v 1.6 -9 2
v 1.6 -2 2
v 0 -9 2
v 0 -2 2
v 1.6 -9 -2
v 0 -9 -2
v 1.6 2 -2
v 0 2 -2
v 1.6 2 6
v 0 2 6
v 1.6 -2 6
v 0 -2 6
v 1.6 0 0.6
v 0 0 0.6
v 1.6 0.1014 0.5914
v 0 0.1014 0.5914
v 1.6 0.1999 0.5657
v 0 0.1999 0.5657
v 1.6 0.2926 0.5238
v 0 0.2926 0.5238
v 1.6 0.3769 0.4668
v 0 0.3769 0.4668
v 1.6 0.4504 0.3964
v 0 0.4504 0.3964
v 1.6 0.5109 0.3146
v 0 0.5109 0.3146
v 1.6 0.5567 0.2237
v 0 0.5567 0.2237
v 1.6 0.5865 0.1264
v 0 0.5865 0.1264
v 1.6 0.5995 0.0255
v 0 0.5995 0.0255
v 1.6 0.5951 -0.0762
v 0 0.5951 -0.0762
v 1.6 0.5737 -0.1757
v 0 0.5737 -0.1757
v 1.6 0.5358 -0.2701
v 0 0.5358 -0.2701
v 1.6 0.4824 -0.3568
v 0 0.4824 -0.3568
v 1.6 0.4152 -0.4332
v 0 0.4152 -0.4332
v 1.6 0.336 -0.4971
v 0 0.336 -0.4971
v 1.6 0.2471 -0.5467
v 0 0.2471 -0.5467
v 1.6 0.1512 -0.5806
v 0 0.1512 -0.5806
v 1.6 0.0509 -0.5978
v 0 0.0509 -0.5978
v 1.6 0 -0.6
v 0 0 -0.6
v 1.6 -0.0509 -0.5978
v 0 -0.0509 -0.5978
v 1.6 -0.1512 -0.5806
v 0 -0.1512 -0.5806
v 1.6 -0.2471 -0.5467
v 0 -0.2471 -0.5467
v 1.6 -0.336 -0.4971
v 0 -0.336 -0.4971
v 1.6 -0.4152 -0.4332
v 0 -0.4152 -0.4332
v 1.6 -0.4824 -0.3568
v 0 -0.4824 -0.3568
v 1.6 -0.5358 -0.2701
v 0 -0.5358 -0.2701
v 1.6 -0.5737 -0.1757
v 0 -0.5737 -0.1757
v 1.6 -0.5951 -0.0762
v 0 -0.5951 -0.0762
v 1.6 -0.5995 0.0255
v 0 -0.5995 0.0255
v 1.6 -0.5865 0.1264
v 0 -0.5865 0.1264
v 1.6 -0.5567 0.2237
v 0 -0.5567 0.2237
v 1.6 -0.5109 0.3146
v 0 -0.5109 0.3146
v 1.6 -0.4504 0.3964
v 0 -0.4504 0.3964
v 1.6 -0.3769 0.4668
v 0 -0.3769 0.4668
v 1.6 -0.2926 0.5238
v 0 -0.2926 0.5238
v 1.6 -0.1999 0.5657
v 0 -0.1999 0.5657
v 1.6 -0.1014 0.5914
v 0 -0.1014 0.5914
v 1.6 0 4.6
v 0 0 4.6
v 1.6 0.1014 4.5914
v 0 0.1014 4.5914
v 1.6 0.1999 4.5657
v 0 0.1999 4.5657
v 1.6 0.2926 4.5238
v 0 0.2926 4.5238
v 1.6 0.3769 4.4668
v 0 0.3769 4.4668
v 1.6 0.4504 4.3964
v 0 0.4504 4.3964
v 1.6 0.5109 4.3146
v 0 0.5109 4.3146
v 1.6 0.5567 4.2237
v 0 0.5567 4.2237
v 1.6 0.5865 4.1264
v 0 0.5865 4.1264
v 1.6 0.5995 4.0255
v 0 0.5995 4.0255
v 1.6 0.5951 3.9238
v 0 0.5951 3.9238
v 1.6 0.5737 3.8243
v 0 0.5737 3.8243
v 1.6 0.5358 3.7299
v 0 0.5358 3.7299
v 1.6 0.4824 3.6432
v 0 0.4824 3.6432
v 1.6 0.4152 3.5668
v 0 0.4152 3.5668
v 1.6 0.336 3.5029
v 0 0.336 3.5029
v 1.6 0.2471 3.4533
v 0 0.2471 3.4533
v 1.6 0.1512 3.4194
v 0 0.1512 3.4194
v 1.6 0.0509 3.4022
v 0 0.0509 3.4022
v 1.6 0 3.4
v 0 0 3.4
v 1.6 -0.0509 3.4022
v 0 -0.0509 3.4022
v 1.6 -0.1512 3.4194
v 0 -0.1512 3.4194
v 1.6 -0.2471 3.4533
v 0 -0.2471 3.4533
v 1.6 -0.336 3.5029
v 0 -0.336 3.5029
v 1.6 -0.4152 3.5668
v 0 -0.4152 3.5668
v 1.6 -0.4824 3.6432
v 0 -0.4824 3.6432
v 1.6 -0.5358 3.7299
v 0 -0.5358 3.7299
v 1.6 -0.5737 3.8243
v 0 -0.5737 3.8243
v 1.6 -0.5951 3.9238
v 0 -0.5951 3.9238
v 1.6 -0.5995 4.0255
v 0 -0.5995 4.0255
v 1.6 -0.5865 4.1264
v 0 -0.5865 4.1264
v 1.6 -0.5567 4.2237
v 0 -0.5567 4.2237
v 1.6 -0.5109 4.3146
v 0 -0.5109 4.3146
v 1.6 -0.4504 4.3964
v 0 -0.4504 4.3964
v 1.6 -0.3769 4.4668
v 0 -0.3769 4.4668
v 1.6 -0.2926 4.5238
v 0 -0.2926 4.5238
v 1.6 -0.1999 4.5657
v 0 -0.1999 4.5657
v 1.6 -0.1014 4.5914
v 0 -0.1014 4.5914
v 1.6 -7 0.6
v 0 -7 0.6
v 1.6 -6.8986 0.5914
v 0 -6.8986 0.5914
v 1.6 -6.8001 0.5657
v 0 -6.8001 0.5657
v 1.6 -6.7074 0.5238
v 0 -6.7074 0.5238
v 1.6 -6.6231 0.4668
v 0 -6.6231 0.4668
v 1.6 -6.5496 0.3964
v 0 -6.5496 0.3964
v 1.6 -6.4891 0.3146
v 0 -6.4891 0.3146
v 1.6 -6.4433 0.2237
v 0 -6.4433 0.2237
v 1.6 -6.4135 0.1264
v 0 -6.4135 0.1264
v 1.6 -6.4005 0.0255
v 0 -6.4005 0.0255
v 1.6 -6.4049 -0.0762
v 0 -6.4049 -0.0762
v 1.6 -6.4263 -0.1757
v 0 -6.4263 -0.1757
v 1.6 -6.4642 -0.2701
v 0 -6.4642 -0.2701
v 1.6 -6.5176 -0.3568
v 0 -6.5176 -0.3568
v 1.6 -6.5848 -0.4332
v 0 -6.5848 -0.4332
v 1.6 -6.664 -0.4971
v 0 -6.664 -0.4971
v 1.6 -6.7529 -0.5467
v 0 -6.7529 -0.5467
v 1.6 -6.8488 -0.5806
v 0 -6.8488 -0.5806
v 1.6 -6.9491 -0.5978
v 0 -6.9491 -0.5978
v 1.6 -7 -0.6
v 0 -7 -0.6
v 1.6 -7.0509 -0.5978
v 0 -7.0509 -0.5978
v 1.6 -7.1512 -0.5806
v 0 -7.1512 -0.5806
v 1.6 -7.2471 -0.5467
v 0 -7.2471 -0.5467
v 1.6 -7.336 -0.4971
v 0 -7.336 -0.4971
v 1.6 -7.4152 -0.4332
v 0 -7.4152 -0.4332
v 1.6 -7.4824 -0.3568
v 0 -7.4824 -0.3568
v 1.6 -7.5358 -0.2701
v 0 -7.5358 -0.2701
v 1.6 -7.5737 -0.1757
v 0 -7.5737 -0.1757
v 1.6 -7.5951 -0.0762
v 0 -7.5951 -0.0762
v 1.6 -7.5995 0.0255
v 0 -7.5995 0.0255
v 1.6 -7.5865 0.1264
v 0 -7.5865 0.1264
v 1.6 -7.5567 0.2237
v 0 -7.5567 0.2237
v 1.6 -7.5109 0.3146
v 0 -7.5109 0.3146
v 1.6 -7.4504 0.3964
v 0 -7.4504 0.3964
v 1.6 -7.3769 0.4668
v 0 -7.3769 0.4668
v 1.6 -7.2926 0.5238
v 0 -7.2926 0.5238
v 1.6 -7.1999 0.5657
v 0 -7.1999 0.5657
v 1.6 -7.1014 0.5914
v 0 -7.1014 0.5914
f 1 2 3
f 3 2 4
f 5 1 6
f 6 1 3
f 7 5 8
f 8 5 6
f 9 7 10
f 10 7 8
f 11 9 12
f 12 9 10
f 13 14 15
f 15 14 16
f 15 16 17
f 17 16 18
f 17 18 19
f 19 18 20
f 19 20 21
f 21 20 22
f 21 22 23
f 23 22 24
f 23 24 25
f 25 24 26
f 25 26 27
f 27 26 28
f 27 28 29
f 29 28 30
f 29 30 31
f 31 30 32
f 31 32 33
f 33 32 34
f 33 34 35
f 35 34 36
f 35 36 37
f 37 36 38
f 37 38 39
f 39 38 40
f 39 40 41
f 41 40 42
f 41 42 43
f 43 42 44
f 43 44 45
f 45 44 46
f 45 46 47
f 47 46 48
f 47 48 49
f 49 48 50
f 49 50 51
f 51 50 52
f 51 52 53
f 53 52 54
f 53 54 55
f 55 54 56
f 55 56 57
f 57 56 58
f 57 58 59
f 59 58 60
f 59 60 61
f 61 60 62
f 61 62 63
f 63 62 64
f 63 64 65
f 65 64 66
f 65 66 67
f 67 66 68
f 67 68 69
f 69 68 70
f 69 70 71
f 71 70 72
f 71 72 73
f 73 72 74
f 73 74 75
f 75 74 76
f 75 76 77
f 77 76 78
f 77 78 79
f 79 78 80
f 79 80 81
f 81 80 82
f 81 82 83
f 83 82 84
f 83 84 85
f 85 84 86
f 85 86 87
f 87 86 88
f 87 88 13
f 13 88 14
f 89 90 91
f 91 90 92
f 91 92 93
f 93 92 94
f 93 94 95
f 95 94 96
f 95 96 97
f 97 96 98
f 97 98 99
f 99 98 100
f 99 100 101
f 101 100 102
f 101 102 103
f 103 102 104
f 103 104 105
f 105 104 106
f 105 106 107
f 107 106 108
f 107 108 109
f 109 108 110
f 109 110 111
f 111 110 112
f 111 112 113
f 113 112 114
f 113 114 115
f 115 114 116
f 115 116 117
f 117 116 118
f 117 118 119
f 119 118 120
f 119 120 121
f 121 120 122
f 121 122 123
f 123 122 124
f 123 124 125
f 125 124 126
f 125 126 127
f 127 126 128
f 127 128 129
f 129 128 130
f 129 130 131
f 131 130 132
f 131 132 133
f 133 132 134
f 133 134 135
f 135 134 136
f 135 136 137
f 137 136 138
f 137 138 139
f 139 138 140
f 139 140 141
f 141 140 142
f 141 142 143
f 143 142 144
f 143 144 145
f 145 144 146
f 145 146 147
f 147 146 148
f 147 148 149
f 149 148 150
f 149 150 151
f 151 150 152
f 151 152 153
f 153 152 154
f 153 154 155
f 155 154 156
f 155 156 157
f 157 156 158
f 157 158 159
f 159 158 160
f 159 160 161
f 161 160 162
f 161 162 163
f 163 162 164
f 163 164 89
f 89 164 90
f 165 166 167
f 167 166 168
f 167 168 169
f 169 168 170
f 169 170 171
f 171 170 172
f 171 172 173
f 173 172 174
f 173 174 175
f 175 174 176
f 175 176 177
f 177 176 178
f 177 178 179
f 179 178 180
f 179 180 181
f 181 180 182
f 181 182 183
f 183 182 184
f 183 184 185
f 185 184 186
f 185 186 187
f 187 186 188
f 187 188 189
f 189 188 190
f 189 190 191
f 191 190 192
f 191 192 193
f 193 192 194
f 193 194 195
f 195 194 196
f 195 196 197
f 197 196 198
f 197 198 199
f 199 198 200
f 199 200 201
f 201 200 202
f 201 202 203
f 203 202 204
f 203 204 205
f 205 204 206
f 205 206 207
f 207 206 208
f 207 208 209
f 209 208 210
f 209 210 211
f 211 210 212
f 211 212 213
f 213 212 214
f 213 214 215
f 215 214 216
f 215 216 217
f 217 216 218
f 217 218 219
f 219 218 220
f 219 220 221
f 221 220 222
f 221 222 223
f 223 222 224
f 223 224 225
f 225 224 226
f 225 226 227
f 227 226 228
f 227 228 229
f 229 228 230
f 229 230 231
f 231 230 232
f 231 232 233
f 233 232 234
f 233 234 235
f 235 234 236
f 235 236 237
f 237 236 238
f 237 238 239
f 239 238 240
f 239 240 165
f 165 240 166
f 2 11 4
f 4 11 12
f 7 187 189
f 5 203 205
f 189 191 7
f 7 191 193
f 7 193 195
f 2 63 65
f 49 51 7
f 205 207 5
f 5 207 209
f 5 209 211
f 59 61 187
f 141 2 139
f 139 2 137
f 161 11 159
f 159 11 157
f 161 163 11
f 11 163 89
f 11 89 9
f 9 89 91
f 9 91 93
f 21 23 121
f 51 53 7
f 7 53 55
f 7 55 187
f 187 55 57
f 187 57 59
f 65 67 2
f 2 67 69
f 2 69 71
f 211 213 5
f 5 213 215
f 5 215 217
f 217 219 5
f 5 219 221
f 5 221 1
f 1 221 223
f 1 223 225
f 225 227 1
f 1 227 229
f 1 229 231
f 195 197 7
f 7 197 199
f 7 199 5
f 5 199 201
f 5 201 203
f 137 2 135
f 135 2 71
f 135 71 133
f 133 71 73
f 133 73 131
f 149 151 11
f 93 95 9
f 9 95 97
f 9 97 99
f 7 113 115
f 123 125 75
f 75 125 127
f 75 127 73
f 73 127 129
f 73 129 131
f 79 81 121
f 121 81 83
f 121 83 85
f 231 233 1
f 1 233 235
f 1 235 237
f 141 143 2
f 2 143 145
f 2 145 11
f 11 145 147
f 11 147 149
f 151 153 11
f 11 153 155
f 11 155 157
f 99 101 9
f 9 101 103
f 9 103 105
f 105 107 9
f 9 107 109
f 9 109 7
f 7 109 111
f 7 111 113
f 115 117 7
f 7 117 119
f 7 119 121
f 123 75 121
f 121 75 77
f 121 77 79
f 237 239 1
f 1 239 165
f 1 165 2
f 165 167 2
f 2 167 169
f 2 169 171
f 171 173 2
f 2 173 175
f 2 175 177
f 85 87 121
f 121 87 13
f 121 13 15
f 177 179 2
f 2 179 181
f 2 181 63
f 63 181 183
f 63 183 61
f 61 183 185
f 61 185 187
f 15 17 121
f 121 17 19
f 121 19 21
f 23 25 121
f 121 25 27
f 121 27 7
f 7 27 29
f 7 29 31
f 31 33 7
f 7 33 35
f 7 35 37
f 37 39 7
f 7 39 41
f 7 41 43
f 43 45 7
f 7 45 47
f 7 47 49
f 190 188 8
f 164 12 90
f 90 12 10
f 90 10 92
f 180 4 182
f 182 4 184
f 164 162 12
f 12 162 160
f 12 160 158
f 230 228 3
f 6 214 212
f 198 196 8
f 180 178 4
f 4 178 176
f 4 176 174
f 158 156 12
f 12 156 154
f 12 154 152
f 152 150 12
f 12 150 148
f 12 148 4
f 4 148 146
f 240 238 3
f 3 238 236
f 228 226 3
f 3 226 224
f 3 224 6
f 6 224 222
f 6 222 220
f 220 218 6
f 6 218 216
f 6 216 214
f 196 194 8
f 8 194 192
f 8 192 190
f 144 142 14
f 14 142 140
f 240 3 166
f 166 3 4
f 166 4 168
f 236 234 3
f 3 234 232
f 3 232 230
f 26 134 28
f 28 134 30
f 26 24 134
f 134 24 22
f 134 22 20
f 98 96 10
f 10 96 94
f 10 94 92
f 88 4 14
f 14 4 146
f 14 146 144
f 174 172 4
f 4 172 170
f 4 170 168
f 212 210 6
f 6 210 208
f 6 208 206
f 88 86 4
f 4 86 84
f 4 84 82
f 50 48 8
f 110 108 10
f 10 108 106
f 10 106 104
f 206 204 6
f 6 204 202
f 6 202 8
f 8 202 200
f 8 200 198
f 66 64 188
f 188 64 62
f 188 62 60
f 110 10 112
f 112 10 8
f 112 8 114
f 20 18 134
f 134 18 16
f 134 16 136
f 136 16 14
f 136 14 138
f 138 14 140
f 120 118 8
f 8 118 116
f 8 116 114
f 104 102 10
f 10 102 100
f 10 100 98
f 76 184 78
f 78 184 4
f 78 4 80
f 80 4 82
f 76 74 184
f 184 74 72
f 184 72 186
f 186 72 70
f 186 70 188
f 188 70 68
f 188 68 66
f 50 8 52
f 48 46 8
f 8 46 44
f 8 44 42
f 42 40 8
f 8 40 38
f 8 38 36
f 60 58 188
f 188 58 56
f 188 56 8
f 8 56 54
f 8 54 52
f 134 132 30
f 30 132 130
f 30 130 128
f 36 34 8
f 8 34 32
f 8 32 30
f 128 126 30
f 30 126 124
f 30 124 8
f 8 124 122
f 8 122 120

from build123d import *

# Parameters (mm, degrees)
SKETCH_1_R      = 0.6
EXTRUDE_1_DEPTH = 1.6


with BuildPart() as part:
    # 草图1 → 凸台-拉伸1 (new body)
    with BuildSketch(Plane(origin=(0, 0, 0), x_dir=(0, 0, -1), z_dir=(1, 0, 0))):
        Polygon((-6, 2), (-6, -2), (-2, -2), (-2, -9), (2, -9), (2, 2), align=None)
        with Locations((0, -7)):
            Circle(SKETCH_1_R, mode=Mode.SUBTRACT)
        with Locations((-4, 0)):
            Circle(SKETCH_1_R, mode=Mode.SUBTRACT)
        Circle(SKETCH_1_R, mode=Mode.SUBTRACT)
    extrude(amount=EXTRUDE_1_DEPTH)


solid = part.part
